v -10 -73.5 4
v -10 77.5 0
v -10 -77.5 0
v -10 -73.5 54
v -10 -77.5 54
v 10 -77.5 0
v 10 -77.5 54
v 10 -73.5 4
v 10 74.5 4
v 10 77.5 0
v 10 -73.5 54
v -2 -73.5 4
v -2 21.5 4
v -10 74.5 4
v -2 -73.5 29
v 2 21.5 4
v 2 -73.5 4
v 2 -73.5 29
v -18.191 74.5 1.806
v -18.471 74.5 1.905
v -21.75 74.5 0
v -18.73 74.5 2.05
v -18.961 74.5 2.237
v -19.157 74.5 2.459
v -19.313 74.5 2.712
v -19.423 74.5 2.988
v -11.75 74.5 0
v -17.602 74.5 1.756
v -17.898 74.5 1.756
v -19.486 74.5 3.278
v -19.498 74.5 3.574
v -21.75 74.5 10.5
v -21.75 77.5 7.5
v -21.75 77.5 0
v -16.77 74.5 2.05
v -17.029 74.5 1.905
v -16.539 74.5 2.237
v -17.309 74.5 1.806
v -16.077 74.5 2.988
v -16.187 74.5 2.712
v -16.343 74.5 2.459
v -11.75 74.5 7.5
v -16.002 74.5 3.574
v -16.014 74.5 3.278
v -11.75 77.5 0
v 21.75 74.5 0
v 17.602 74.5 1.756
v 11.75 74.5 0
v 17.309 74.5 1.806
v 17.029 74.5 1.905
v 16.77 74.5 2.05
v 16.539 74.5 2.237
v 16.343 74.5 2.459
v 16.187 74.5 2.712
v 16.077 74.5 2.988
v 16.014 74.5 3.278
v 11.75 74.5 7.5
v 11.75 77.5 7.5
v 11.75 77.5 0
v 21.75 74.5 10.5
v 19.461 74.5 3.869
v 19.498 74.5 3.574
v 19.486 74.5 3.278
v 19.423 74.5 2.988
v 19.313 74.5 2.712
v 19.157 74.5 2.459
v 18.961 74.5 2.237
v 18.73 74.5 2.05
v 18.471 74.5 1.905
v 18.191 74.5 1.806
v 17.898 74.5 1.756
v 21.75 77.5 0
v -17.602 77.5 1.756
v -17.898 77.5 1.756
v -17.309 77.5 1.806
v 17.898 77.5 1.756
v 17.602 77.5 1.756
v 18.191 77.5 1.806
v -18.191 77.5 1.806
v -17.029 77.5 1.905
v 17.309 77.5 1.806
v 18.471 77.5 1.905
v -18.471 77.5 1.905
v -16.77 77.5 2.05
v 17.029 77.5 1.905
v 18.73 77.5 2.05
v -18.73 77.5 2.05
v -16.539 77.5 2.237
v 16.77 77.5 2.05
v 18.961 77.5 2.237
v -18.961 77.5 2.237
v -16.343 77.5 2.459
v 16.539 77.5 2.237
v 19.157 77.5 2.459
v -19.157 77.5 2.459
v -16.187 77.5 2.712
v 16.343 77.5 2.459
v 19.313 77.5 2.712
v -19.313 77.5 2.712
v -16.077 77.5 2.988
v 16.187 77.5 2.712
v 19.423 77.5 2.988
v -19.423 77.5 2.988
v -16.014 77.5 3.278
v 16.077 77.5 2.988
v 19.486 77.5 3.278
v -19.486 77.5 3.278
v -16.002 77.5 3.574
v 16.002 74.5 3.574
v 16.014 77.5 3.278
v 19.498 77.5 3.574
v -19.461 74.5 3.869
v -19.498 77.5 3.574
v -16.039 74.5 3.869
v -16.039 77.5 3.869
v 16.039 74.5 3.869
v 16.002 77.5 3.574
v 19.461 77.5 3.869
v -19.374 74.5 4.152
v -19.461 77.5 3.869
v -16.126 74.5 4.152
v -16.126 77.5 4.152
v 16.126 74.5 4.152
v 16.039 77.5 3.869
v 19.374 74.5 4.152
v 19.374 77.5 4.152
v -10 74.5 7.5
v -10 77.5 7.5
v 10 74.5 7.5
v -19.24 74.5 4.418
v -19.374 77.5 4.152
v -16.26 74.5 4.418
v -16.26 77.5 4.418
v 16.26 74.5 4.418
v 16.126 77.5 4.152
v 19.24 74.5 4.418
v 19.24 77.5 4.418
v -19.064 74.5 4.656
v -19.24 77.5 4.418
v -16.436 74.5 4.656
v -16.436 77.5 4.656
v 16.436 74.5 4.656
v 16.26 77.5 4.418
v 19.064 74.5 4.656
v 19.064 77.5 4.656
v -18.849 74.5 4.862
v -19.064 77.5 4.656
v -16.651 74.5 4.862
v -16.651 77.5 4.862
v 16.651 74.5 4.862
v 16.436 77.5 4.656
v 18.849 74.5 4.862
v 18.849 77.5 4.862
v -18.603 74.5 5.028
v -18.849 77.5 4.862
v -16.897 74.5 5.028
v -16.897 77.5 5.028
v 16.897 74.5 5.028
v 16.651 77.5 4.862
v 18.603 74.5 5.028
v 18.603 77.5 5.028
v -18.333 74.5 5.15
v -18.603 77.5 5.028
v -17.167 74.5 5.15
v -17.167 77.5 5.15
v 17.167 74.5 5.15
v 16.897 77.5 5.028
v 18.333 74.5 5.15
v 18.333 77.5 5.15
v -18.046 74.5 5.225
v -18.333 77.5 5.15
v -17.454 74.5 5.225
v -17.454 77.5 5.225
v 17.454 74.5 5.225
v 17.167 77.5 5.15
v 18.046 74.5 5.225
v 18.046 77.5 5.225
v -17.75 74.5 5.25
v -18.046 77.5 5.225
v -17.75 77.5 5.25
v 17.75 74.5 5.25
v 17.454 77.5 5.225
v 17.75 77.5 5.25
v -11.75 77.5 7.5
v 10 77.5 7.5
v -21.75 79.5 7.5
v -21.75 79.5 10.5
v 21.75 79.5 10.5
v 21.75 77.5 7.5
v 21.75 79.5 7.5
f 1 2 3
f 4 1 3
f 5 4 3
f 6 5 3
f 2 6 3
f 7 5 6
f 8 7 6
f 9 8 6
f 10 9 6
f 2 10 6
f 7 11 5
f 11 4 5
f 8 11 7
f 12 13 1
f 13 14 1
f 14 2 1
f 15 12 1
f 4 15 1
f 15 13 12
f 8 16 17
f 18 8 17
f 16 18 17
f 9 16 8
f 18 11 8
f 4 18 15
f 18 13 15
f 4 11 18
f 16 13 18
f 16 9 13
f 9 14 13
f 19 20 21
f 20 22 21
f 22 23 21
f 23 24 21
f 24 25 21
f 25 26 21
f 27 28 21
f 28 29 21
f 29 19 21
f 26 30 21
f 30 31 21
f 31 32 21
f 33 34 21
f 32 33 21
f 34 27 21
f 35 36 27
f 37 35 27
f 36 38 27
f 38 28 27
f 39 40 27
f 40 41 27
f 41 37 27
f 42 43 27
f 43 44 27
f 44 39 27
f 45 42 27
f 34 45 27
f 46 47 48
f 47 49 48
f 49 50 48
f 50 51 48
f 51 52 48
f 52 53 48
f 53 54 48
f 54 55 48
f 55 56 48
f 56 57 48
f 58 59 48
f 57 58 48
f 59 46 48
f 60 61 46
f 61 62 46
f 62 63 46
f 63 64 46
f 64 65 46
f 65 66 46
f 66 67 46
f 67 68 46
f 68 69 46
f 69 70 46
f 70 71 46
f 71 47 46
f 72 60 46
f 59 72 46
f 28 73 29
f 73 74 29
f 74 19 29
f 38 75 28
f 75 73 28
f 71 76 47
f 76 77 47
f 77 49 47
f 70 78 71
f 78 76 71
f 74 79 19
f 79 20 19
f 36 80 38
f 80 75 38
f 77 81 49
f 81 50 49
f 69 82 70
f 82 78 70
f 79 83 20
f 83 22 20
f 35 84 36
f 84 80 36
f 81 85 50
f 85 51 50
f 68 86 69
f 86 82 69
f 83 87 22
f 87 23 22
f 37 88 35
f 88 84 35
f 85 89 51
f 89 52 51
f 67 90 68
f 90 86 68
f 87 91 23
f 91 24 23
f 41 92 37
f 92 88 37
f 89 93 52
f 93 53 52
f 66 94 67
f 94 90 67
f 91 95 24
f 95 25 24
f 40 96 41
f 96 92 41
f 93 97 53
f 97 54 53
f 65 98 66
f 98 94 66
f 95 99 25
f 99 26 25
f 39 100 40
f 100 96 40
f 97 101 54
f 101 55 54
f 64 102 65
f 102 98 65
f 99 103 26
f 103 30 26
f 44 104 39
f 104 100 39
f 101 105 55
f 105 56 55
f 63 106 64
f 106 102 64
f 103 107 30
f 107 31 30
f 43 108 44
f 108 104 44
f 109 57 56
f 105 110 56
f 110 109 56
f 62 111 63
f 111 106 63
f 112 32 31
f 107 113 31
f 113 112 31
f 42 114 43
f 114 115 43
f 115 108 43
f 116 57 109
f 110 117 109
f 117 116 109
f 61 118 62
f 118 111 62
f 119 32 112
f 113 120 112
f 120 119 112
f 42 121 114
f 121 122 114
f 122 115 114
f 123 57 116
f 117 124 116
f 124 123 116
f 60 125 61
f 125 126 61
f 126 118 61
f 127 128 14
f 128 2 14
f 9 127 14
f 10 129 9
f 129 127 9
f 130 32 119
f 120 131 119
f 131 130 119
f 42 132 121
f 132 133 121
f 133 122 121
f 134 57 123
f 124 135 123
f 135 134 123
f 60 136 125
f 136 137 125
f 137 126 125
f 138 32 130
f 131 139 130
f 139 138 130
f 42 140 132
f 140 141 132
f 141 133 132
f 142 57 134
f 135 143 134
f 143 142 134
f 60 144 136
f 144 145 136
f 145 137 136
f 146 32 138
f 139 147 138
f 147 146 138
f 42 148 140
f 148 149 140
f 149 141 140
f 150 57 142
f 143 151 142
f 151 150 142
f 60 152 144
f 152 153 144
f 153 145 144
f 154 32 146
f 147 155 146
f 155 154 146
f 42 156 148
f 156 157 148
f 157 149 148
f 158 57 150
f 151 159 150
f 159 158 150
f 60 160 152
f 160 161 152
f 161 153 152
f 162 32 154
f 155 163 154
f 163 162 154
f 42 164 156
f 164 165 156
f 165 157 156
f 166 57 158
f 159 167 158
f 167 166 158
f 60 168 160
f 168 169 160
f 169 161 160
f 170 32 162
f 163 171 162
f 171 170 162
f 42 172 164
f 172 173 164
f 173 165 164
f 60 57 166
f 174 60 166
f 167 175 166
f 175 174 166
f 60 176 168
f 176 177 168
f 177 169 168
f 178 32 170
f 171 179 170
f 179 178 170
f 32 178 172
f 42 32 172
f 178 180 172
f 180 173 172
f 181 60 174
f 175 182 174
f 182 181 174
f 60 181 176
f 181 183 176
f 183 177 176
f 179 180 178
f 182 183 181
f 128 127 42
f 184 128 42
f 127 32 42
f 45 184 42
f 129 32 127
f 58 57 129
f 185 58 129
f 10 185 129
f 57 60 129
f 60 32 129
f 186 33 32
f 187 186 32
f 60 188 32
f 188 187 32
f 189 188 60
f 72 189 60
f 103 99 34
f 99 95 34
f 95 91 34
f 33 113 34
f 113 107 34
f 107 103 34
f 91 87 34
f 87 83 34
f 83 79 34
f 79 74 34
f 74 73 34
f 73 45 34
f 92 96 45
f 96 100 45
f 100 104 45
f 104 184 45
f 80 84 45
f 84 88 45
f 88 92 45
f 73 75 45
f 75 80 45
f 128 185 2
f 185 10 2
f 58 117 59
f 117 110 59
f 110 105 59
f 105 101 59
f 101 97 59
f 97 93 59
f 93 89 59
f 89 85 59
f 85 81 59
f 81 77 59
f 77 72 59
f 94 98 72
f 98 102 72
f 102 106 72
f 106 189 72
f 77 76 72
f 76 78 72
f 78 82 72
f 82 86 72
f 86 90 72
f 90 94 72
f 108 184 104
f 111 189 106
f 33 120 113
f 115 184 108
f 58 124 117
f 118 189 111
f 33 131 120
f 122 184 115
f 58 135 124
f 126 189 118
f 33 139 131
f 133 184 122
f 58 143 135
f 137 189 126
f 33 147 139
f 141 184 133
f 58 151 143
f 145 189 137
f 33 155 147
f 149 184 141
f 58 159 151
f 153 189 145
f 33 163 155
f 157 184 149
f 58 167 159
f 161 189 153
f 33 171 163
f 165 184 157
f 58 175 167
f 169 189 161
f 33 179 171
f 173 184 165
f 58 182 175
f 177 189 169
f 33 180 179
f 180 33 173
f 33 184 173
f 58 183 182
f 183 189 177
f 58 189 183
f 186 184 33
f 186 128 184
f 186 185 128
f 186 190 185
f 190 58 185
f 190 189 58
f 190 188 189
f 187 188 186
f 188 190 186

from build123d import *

# Parameters (mm, degrees)
SKETCH1_W           = 20
SKETCH1_H           = 155
BOSS_EXTRUDE1_DEPTH = 4
SKETCH2_W           = 20
SKETCH2_H           = 4
BOSS_EXTRUDE3_DEPTH = 50
RIB2_REACH          = 96.986
SKETCH7_WALL_W      = 290.205463948
SKETCH7_WALL_H      = 4
SKETCH8_W           = 20
SKETCH8_H           = 3
BOSS_EXTRUDE4_DEPTH = 3.5
BOSS_EXTRUDE6_DEPTH = 3
SKETCH10_W          = 10
SKETCH10_H          = 3
BOSS_EXTRUDE7_DEPTH = 7.5
SKETCH12_R          = 1.75
CUT_EXTRUDE1_DEPTH  = 10


with BuildPart() as part:
    # Sketch1 → Boss-Extrude1 (new body)
    with BuildSketch(Plane.XY):
        Rectangle(SKETCH1_W, SKETCH1_H)
    extrude(amount=BOSS_EXTRUDE1_DEPTH)

    # Sketch2 → Boss-Extrude3 (add)
    with BuildSketch(Plane.XY.offset(4)):
        with Locations((0, -75.5)):
            Rectangle(SKETCH2_W, SKETCH2_H)
    extrude(amount=BOSS_EXTRUDE3_DEPTH)

    # Sketch7 wall → Rib2 (add, up to next)
    with BuildSketch(Plane(origin=(0, -26, 16.5), x_dir=(0, 0.967074537263, -0.25449329928), z_dir=(0, 0.25449329928, 0.967074537263)), mode=Mode.PRIVATE) as rib2_sk1:
        Rectangle(SKETCH7_WALL_W, SKETCH7_WALL_H)
    rib2_tool1 = extrude(rib2_sk1.sketch, amount=-RIB2_REACH, mode=Mode.PRIVATE) - part.part
    add(rib2_tool1.solids().sort_by_distance((0, -26, 16.5))[0])

    # Sketch8 → Boss-Extrude4 (add)
    with BuildSketch(Plane.XY.offset(4)):
        with Locations((0, 76)):
            Rectangle(SKETCH8_W, SKETCH8_H)
    extrude(amount=BOSS_EXTRUDE4_DEPTH)

    # Sketch9 → Boss-Extrude6 (add)
    with BuildSketch(Plane.XY.offset(7.5)):
        Polygon((-21.75, 74.5), (0, 74.5), (21.75, 74.5), (21.75, 79.5), (-21.75, 79.5), align=None)
    extrude(amount=BOSS_EXTRUDE6_DEPTH)

    # Sketch10 → Boss-Extrude7 (add)
    with BuildSketch(Plane(origin=(0, 0, 7.5), x_dir=(-1, 0, 0), z_dir=(0, 0, -1))):
        with Locations((16.75, 76)):
            Rectangle(SKETCH10_W, SKETCH10_H)
        with Locations((-16.75, 76)):
            Rectangle(SKETCH10_W, SKETCH10_H)
    extrude(amount=BOSS_EXTRUDE7_DEPTH)

    # Sketch12 → Cut-Extrude1 (cut)
    with BuildSketch(Plane(origin=(0, 77.5, 0), x_dir=(1, 0, 0), z_dir=(0, 1, 0))):
        with Locations(Location((-17.75, -3.5, 0), (0, 0, 270))):
            Circle(SKETCH12_R)
        with Locations(Location((17.75, -3.5, 0), (0, 0, 270))):
            Circle(SKETCH12_R)
    extrude(amount=-CUT_EXTRUDE1_DEPTH, mode=Mode.SUBTRACT)


solid = part.part
